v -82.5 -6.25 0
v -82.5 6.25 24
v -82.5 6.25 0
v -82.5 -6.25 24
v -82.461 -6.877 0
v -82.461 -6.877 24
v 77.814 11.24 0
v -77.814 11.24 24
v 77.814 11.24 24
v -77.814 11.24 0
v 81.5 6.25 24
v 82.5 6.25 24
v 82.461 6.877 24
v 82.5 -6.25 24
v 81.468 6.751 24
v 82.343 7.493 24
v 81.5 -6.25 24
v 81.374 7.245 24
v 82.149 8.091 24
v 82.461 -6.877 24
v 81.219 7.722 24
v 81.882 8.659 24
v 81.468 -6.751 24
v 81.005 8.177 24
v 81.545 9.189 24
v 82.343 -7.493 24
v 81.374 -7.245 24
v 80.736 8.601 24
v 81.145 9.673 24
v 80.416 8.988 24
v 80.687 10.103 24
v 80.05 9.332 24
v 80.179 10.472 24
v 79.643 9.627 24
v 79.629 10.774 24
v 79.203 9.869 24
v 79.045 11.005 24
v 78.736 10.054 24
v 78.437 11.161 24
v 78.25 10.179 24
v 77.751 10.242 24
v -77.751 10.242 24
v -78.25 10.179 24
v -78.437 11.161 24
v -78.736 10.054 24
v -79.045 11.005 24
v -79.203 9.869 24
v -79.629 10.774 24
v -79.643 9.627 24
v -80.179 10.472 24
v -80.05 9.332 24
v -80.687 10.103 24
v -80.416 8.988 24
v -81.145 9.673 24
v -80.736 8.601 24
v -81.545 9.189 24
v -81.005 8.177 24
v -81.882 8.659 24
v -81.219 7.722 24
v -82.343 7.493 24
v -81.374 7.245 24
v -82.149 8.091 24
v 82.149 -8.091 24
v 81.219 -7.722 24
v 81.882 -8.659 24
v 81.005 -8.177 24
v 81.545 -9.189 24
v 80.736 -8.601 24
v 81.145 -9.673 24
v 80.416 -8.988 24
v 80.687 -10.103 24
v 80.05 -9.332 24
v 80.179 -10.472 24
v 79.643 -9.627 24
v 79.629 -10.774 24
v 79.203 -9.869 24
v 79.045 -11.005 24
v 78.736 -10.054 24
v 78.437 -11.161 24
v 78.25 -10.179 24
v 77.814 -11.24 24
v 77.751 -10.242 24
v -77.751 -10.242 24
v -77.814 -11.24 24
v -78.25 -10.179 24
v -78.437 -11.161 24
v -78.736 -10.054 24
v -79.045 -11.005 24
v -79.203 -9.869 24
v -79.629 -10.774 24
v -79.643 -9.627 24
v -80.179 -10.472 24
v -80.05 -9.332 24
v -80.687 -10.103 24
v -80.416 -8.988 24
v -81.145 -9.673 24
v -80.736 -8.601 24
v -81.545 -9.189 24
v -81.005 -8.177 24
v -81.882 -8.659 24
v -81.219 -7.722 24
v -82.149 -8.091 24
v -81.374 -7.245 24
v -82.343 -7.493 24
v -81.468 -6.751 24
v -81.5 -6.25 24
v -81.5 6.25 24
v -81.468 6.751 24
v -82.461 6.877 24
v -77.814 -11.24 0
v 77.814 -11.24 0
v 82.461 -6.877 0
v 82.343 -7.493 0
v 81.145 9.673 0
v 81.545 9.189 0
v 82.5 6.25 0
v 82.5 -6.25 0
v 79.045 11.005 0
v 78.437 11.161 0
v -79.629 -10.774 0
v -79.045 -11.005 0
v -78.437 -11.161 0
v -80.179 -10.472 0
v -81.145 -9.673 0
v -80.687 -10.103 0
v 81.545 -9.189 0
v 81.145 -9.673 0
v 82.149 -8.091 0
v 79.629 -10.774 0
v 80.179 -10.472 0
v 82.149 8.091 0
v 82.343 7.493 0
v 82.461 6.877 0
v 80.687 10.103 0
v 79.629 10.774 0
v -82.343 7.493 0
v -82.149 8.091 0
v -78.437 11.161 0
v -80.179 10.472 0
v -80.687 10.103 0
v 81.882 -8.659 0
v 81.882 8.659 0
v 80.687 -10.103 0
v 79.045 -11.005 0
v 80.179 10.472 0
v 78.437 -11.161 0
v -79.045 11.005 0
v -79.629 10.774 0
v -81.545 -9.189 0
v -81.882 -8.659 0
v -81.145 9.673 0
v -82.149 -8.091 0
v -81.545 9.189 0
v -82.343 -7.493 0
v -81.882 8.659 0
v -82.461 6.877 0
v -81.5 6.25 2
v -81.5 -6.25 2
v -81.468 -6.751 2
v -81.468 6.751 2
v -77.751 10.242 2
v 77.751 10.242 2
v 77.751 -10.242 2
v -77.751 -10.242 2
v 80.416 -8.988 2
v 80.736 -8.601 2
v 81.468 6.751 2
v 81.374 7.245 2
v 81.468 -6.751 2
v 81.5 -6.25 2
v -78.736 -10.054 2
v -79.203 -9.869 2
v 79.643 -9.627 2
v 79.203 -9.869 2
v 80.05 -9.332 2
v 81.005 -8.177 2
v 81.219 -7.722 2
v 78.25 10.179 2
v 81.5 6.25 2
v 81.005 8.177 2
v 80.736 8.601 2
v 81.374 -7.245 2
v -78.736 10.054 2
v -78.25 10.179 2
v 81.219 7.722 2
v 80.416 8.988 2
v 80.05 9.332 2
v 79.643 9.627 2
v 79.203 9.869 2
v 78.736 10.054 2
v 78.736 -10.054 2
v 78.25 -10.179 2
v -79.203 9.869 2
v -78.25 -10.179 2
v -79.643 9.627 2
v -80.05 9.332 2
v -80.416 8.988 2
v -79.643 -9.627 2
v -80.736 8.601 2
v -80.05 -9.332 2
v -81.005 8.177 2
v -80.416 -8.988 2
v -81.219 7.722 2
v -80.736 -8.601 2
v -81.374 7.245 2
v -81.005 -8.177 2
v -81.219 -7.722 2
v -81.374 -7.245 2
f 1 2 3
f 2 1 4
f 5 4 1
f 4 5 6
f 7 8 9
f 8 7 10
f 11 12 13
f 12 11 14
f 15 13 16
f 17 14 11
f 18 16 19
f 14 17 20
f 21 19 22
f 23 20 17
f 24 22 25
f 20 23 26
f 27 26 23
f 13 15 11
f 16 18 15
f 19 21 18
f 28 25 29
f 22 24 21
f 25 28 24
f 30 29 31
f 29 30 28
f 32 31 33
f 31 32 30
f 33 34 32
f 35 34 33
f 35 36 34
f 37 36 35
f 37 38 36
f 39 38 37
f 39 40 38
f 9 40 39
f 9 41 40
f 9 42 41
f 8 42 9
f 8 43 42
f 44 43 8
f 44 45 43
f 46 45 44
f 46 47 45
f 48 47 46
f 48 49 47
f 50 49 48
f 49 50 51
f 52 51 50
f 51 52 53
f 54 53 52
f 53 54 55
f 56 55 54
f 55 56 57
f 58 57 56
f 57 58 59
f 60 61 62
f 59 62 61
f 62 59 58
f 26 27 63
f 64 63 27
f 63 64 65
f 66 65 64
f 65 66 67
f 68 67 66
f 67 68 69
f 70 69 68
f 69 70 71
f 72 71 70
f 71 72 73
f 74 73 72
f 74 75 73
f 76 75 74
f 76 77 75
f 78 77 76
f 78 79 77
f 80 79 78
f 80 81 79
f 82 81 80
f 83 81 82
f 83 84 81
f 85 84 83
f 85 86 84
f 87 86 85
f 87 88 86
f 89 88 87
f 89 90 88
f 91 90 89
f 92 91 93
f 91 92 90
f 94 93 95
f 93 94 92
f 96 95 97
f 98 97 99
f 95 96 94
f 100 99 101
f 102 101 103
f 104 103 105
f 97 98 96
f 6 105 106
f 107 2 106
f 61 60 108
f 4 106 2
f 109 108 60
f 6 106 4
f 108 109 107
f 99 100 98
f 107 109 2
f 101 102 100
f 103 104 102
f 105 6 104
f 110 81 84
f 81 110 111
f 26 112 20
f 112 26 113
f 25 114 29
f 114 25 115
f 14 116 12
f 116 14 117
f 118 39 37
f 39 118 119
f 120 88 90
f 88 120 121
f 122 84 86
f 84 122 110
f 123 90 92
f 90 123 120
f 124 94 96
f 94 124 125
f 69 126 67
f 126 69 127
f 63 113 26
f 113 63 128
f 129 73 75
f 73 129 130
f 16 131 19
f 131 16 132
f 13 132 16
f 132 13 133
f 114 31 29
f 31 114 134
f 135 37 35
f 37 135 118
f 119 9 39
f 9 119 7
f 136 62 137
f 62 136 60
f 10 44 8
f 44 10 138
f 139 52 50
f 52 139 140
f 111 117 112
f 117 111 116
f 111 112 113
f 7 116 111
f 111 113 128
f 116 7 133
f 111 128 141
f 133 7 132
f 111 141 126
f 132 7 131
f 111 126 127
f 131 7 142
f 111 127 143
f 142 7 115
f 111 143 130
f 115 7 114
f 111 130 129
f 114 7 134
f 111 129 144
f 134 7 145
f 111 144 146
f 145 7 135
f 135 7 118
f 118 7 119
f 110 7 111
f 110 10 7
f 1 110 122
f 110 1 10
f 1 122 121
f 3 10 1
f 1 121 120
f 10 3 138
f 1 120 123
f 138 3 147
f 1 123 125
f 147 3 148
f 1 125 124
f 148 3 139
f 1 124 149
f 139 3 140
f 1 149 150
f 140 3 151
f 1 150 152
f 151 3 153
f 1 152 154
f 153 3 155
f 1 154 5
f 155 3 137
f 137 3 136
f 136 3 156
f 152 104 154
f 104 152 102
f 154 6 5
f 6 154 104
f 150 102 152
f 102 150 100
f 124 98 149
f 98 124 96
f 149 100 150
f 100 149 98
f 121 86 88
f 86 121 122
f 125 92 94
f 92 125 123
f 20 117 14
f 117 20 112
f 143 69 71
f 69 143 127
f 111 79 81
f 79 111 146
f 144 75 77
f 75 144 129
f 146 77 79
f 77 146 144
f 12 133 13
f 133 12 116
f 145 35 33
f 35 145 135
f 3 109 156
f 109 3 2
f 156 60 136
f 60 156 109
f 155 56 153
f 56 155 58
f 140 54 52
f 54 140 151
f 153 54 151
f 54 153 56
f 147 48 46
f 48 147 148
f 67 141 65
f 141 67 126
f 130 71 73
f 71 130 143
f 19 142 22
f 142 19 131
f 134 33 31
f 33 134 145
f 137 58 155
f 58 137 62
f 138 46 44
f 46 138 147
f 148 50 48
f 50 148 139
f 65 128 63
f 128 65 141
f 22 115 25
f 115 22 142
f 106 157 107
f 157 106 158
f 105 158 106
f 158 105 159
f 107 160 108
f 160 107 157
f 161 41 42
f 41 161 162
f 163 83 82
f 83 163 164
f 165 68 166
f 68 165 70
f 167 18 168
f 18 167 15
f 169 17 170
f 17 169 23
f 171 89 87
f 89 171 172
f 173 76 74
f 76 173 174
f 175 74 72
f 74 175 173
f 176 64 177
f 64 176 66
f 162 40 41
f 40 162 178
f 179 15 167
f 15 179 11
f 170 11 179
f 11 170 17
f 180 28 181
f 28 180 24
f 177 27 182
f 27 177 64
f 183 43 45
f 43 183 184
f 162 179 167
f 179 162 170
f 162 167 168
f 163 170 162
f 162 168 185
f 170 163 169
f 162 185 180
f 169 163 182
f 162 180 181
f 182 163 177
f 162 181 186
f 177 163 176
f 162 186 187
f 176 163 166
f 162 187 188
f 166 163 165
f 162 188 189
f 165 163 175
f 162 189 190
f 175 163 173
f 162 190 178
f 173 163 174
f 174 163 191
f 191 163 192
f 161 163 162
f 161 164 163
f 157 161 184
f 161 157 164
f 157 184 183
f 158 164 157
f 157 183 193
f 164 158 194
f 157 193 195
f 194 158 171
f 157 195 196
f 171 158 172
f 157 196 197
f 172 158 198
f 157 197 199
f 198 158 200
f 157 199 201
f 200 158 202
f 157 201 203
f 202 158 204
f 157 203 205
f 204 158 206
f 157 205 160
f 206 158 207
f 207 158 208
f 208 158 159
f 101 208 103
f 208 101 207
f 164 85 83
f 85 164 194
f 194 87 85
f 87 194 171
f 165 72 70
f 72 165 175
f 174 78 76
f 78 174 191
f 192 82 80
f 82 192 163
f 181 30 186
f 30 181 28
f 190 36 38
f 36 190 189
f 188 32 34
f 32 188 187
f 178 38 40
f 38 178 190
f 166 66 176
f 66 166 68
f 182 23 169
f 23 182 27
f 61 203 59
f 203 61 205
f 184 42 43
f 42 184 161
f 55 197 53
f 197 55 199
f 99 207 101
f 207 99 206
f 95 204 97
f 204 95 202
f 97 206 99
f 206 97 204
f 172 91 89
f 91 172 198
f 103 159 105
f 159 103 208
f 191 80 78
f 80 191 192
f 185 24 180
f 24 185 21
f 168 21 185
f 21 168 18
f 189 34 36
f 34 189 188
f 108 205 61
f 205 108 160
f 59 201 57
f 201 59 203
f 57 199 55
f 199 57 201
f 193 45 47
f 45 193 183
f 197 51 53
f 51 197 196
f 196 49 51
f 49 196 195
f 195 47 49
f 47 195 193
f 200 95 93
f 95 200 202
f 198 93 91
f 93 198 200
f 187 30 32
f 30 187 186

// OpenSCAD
$fn = 50;


difference() {
	union() {
		hull() {
			translate(v = [-77.5000000000, 6.2500000000, 0]) {
				cylinder(h = 24, r = 5);
			}
			translate(v = [77.5000000000, 6.2500000000, 0]) {
				cylinder(h = 24, r = 5);
			}
			translate(v = [-77.5000000000, -6.2500000000, 0]) {
				cylinder(h = 24, r = 5);
			}
			translate(v = [77.5000000000, -6.2500000000, 0]) {
				cylinder(h = 24, r = 5);
			}
		}
	}
	union() {
		translate(v = [0, 0, 2]) {
			hull() {
				translate(v = [-77.5000000000, 6.2500000000, 0]) {
					cylinder(h = 22, r = 4);
				}
				translate(v = [77.5000000000, 6.2500000000, 0]) {
					cylinder(h = 22, r = 4);
				}
				translate(v = [-77.5000000000, -6.2500000000, 0]) {
					cylinder(h = 22, r = 4);
				}
				translate(v = [77.5000000000, -6.2500000000, 0]) {
					cylinder(h = 22, r = 4);
				}
			}
		}
	}
}
